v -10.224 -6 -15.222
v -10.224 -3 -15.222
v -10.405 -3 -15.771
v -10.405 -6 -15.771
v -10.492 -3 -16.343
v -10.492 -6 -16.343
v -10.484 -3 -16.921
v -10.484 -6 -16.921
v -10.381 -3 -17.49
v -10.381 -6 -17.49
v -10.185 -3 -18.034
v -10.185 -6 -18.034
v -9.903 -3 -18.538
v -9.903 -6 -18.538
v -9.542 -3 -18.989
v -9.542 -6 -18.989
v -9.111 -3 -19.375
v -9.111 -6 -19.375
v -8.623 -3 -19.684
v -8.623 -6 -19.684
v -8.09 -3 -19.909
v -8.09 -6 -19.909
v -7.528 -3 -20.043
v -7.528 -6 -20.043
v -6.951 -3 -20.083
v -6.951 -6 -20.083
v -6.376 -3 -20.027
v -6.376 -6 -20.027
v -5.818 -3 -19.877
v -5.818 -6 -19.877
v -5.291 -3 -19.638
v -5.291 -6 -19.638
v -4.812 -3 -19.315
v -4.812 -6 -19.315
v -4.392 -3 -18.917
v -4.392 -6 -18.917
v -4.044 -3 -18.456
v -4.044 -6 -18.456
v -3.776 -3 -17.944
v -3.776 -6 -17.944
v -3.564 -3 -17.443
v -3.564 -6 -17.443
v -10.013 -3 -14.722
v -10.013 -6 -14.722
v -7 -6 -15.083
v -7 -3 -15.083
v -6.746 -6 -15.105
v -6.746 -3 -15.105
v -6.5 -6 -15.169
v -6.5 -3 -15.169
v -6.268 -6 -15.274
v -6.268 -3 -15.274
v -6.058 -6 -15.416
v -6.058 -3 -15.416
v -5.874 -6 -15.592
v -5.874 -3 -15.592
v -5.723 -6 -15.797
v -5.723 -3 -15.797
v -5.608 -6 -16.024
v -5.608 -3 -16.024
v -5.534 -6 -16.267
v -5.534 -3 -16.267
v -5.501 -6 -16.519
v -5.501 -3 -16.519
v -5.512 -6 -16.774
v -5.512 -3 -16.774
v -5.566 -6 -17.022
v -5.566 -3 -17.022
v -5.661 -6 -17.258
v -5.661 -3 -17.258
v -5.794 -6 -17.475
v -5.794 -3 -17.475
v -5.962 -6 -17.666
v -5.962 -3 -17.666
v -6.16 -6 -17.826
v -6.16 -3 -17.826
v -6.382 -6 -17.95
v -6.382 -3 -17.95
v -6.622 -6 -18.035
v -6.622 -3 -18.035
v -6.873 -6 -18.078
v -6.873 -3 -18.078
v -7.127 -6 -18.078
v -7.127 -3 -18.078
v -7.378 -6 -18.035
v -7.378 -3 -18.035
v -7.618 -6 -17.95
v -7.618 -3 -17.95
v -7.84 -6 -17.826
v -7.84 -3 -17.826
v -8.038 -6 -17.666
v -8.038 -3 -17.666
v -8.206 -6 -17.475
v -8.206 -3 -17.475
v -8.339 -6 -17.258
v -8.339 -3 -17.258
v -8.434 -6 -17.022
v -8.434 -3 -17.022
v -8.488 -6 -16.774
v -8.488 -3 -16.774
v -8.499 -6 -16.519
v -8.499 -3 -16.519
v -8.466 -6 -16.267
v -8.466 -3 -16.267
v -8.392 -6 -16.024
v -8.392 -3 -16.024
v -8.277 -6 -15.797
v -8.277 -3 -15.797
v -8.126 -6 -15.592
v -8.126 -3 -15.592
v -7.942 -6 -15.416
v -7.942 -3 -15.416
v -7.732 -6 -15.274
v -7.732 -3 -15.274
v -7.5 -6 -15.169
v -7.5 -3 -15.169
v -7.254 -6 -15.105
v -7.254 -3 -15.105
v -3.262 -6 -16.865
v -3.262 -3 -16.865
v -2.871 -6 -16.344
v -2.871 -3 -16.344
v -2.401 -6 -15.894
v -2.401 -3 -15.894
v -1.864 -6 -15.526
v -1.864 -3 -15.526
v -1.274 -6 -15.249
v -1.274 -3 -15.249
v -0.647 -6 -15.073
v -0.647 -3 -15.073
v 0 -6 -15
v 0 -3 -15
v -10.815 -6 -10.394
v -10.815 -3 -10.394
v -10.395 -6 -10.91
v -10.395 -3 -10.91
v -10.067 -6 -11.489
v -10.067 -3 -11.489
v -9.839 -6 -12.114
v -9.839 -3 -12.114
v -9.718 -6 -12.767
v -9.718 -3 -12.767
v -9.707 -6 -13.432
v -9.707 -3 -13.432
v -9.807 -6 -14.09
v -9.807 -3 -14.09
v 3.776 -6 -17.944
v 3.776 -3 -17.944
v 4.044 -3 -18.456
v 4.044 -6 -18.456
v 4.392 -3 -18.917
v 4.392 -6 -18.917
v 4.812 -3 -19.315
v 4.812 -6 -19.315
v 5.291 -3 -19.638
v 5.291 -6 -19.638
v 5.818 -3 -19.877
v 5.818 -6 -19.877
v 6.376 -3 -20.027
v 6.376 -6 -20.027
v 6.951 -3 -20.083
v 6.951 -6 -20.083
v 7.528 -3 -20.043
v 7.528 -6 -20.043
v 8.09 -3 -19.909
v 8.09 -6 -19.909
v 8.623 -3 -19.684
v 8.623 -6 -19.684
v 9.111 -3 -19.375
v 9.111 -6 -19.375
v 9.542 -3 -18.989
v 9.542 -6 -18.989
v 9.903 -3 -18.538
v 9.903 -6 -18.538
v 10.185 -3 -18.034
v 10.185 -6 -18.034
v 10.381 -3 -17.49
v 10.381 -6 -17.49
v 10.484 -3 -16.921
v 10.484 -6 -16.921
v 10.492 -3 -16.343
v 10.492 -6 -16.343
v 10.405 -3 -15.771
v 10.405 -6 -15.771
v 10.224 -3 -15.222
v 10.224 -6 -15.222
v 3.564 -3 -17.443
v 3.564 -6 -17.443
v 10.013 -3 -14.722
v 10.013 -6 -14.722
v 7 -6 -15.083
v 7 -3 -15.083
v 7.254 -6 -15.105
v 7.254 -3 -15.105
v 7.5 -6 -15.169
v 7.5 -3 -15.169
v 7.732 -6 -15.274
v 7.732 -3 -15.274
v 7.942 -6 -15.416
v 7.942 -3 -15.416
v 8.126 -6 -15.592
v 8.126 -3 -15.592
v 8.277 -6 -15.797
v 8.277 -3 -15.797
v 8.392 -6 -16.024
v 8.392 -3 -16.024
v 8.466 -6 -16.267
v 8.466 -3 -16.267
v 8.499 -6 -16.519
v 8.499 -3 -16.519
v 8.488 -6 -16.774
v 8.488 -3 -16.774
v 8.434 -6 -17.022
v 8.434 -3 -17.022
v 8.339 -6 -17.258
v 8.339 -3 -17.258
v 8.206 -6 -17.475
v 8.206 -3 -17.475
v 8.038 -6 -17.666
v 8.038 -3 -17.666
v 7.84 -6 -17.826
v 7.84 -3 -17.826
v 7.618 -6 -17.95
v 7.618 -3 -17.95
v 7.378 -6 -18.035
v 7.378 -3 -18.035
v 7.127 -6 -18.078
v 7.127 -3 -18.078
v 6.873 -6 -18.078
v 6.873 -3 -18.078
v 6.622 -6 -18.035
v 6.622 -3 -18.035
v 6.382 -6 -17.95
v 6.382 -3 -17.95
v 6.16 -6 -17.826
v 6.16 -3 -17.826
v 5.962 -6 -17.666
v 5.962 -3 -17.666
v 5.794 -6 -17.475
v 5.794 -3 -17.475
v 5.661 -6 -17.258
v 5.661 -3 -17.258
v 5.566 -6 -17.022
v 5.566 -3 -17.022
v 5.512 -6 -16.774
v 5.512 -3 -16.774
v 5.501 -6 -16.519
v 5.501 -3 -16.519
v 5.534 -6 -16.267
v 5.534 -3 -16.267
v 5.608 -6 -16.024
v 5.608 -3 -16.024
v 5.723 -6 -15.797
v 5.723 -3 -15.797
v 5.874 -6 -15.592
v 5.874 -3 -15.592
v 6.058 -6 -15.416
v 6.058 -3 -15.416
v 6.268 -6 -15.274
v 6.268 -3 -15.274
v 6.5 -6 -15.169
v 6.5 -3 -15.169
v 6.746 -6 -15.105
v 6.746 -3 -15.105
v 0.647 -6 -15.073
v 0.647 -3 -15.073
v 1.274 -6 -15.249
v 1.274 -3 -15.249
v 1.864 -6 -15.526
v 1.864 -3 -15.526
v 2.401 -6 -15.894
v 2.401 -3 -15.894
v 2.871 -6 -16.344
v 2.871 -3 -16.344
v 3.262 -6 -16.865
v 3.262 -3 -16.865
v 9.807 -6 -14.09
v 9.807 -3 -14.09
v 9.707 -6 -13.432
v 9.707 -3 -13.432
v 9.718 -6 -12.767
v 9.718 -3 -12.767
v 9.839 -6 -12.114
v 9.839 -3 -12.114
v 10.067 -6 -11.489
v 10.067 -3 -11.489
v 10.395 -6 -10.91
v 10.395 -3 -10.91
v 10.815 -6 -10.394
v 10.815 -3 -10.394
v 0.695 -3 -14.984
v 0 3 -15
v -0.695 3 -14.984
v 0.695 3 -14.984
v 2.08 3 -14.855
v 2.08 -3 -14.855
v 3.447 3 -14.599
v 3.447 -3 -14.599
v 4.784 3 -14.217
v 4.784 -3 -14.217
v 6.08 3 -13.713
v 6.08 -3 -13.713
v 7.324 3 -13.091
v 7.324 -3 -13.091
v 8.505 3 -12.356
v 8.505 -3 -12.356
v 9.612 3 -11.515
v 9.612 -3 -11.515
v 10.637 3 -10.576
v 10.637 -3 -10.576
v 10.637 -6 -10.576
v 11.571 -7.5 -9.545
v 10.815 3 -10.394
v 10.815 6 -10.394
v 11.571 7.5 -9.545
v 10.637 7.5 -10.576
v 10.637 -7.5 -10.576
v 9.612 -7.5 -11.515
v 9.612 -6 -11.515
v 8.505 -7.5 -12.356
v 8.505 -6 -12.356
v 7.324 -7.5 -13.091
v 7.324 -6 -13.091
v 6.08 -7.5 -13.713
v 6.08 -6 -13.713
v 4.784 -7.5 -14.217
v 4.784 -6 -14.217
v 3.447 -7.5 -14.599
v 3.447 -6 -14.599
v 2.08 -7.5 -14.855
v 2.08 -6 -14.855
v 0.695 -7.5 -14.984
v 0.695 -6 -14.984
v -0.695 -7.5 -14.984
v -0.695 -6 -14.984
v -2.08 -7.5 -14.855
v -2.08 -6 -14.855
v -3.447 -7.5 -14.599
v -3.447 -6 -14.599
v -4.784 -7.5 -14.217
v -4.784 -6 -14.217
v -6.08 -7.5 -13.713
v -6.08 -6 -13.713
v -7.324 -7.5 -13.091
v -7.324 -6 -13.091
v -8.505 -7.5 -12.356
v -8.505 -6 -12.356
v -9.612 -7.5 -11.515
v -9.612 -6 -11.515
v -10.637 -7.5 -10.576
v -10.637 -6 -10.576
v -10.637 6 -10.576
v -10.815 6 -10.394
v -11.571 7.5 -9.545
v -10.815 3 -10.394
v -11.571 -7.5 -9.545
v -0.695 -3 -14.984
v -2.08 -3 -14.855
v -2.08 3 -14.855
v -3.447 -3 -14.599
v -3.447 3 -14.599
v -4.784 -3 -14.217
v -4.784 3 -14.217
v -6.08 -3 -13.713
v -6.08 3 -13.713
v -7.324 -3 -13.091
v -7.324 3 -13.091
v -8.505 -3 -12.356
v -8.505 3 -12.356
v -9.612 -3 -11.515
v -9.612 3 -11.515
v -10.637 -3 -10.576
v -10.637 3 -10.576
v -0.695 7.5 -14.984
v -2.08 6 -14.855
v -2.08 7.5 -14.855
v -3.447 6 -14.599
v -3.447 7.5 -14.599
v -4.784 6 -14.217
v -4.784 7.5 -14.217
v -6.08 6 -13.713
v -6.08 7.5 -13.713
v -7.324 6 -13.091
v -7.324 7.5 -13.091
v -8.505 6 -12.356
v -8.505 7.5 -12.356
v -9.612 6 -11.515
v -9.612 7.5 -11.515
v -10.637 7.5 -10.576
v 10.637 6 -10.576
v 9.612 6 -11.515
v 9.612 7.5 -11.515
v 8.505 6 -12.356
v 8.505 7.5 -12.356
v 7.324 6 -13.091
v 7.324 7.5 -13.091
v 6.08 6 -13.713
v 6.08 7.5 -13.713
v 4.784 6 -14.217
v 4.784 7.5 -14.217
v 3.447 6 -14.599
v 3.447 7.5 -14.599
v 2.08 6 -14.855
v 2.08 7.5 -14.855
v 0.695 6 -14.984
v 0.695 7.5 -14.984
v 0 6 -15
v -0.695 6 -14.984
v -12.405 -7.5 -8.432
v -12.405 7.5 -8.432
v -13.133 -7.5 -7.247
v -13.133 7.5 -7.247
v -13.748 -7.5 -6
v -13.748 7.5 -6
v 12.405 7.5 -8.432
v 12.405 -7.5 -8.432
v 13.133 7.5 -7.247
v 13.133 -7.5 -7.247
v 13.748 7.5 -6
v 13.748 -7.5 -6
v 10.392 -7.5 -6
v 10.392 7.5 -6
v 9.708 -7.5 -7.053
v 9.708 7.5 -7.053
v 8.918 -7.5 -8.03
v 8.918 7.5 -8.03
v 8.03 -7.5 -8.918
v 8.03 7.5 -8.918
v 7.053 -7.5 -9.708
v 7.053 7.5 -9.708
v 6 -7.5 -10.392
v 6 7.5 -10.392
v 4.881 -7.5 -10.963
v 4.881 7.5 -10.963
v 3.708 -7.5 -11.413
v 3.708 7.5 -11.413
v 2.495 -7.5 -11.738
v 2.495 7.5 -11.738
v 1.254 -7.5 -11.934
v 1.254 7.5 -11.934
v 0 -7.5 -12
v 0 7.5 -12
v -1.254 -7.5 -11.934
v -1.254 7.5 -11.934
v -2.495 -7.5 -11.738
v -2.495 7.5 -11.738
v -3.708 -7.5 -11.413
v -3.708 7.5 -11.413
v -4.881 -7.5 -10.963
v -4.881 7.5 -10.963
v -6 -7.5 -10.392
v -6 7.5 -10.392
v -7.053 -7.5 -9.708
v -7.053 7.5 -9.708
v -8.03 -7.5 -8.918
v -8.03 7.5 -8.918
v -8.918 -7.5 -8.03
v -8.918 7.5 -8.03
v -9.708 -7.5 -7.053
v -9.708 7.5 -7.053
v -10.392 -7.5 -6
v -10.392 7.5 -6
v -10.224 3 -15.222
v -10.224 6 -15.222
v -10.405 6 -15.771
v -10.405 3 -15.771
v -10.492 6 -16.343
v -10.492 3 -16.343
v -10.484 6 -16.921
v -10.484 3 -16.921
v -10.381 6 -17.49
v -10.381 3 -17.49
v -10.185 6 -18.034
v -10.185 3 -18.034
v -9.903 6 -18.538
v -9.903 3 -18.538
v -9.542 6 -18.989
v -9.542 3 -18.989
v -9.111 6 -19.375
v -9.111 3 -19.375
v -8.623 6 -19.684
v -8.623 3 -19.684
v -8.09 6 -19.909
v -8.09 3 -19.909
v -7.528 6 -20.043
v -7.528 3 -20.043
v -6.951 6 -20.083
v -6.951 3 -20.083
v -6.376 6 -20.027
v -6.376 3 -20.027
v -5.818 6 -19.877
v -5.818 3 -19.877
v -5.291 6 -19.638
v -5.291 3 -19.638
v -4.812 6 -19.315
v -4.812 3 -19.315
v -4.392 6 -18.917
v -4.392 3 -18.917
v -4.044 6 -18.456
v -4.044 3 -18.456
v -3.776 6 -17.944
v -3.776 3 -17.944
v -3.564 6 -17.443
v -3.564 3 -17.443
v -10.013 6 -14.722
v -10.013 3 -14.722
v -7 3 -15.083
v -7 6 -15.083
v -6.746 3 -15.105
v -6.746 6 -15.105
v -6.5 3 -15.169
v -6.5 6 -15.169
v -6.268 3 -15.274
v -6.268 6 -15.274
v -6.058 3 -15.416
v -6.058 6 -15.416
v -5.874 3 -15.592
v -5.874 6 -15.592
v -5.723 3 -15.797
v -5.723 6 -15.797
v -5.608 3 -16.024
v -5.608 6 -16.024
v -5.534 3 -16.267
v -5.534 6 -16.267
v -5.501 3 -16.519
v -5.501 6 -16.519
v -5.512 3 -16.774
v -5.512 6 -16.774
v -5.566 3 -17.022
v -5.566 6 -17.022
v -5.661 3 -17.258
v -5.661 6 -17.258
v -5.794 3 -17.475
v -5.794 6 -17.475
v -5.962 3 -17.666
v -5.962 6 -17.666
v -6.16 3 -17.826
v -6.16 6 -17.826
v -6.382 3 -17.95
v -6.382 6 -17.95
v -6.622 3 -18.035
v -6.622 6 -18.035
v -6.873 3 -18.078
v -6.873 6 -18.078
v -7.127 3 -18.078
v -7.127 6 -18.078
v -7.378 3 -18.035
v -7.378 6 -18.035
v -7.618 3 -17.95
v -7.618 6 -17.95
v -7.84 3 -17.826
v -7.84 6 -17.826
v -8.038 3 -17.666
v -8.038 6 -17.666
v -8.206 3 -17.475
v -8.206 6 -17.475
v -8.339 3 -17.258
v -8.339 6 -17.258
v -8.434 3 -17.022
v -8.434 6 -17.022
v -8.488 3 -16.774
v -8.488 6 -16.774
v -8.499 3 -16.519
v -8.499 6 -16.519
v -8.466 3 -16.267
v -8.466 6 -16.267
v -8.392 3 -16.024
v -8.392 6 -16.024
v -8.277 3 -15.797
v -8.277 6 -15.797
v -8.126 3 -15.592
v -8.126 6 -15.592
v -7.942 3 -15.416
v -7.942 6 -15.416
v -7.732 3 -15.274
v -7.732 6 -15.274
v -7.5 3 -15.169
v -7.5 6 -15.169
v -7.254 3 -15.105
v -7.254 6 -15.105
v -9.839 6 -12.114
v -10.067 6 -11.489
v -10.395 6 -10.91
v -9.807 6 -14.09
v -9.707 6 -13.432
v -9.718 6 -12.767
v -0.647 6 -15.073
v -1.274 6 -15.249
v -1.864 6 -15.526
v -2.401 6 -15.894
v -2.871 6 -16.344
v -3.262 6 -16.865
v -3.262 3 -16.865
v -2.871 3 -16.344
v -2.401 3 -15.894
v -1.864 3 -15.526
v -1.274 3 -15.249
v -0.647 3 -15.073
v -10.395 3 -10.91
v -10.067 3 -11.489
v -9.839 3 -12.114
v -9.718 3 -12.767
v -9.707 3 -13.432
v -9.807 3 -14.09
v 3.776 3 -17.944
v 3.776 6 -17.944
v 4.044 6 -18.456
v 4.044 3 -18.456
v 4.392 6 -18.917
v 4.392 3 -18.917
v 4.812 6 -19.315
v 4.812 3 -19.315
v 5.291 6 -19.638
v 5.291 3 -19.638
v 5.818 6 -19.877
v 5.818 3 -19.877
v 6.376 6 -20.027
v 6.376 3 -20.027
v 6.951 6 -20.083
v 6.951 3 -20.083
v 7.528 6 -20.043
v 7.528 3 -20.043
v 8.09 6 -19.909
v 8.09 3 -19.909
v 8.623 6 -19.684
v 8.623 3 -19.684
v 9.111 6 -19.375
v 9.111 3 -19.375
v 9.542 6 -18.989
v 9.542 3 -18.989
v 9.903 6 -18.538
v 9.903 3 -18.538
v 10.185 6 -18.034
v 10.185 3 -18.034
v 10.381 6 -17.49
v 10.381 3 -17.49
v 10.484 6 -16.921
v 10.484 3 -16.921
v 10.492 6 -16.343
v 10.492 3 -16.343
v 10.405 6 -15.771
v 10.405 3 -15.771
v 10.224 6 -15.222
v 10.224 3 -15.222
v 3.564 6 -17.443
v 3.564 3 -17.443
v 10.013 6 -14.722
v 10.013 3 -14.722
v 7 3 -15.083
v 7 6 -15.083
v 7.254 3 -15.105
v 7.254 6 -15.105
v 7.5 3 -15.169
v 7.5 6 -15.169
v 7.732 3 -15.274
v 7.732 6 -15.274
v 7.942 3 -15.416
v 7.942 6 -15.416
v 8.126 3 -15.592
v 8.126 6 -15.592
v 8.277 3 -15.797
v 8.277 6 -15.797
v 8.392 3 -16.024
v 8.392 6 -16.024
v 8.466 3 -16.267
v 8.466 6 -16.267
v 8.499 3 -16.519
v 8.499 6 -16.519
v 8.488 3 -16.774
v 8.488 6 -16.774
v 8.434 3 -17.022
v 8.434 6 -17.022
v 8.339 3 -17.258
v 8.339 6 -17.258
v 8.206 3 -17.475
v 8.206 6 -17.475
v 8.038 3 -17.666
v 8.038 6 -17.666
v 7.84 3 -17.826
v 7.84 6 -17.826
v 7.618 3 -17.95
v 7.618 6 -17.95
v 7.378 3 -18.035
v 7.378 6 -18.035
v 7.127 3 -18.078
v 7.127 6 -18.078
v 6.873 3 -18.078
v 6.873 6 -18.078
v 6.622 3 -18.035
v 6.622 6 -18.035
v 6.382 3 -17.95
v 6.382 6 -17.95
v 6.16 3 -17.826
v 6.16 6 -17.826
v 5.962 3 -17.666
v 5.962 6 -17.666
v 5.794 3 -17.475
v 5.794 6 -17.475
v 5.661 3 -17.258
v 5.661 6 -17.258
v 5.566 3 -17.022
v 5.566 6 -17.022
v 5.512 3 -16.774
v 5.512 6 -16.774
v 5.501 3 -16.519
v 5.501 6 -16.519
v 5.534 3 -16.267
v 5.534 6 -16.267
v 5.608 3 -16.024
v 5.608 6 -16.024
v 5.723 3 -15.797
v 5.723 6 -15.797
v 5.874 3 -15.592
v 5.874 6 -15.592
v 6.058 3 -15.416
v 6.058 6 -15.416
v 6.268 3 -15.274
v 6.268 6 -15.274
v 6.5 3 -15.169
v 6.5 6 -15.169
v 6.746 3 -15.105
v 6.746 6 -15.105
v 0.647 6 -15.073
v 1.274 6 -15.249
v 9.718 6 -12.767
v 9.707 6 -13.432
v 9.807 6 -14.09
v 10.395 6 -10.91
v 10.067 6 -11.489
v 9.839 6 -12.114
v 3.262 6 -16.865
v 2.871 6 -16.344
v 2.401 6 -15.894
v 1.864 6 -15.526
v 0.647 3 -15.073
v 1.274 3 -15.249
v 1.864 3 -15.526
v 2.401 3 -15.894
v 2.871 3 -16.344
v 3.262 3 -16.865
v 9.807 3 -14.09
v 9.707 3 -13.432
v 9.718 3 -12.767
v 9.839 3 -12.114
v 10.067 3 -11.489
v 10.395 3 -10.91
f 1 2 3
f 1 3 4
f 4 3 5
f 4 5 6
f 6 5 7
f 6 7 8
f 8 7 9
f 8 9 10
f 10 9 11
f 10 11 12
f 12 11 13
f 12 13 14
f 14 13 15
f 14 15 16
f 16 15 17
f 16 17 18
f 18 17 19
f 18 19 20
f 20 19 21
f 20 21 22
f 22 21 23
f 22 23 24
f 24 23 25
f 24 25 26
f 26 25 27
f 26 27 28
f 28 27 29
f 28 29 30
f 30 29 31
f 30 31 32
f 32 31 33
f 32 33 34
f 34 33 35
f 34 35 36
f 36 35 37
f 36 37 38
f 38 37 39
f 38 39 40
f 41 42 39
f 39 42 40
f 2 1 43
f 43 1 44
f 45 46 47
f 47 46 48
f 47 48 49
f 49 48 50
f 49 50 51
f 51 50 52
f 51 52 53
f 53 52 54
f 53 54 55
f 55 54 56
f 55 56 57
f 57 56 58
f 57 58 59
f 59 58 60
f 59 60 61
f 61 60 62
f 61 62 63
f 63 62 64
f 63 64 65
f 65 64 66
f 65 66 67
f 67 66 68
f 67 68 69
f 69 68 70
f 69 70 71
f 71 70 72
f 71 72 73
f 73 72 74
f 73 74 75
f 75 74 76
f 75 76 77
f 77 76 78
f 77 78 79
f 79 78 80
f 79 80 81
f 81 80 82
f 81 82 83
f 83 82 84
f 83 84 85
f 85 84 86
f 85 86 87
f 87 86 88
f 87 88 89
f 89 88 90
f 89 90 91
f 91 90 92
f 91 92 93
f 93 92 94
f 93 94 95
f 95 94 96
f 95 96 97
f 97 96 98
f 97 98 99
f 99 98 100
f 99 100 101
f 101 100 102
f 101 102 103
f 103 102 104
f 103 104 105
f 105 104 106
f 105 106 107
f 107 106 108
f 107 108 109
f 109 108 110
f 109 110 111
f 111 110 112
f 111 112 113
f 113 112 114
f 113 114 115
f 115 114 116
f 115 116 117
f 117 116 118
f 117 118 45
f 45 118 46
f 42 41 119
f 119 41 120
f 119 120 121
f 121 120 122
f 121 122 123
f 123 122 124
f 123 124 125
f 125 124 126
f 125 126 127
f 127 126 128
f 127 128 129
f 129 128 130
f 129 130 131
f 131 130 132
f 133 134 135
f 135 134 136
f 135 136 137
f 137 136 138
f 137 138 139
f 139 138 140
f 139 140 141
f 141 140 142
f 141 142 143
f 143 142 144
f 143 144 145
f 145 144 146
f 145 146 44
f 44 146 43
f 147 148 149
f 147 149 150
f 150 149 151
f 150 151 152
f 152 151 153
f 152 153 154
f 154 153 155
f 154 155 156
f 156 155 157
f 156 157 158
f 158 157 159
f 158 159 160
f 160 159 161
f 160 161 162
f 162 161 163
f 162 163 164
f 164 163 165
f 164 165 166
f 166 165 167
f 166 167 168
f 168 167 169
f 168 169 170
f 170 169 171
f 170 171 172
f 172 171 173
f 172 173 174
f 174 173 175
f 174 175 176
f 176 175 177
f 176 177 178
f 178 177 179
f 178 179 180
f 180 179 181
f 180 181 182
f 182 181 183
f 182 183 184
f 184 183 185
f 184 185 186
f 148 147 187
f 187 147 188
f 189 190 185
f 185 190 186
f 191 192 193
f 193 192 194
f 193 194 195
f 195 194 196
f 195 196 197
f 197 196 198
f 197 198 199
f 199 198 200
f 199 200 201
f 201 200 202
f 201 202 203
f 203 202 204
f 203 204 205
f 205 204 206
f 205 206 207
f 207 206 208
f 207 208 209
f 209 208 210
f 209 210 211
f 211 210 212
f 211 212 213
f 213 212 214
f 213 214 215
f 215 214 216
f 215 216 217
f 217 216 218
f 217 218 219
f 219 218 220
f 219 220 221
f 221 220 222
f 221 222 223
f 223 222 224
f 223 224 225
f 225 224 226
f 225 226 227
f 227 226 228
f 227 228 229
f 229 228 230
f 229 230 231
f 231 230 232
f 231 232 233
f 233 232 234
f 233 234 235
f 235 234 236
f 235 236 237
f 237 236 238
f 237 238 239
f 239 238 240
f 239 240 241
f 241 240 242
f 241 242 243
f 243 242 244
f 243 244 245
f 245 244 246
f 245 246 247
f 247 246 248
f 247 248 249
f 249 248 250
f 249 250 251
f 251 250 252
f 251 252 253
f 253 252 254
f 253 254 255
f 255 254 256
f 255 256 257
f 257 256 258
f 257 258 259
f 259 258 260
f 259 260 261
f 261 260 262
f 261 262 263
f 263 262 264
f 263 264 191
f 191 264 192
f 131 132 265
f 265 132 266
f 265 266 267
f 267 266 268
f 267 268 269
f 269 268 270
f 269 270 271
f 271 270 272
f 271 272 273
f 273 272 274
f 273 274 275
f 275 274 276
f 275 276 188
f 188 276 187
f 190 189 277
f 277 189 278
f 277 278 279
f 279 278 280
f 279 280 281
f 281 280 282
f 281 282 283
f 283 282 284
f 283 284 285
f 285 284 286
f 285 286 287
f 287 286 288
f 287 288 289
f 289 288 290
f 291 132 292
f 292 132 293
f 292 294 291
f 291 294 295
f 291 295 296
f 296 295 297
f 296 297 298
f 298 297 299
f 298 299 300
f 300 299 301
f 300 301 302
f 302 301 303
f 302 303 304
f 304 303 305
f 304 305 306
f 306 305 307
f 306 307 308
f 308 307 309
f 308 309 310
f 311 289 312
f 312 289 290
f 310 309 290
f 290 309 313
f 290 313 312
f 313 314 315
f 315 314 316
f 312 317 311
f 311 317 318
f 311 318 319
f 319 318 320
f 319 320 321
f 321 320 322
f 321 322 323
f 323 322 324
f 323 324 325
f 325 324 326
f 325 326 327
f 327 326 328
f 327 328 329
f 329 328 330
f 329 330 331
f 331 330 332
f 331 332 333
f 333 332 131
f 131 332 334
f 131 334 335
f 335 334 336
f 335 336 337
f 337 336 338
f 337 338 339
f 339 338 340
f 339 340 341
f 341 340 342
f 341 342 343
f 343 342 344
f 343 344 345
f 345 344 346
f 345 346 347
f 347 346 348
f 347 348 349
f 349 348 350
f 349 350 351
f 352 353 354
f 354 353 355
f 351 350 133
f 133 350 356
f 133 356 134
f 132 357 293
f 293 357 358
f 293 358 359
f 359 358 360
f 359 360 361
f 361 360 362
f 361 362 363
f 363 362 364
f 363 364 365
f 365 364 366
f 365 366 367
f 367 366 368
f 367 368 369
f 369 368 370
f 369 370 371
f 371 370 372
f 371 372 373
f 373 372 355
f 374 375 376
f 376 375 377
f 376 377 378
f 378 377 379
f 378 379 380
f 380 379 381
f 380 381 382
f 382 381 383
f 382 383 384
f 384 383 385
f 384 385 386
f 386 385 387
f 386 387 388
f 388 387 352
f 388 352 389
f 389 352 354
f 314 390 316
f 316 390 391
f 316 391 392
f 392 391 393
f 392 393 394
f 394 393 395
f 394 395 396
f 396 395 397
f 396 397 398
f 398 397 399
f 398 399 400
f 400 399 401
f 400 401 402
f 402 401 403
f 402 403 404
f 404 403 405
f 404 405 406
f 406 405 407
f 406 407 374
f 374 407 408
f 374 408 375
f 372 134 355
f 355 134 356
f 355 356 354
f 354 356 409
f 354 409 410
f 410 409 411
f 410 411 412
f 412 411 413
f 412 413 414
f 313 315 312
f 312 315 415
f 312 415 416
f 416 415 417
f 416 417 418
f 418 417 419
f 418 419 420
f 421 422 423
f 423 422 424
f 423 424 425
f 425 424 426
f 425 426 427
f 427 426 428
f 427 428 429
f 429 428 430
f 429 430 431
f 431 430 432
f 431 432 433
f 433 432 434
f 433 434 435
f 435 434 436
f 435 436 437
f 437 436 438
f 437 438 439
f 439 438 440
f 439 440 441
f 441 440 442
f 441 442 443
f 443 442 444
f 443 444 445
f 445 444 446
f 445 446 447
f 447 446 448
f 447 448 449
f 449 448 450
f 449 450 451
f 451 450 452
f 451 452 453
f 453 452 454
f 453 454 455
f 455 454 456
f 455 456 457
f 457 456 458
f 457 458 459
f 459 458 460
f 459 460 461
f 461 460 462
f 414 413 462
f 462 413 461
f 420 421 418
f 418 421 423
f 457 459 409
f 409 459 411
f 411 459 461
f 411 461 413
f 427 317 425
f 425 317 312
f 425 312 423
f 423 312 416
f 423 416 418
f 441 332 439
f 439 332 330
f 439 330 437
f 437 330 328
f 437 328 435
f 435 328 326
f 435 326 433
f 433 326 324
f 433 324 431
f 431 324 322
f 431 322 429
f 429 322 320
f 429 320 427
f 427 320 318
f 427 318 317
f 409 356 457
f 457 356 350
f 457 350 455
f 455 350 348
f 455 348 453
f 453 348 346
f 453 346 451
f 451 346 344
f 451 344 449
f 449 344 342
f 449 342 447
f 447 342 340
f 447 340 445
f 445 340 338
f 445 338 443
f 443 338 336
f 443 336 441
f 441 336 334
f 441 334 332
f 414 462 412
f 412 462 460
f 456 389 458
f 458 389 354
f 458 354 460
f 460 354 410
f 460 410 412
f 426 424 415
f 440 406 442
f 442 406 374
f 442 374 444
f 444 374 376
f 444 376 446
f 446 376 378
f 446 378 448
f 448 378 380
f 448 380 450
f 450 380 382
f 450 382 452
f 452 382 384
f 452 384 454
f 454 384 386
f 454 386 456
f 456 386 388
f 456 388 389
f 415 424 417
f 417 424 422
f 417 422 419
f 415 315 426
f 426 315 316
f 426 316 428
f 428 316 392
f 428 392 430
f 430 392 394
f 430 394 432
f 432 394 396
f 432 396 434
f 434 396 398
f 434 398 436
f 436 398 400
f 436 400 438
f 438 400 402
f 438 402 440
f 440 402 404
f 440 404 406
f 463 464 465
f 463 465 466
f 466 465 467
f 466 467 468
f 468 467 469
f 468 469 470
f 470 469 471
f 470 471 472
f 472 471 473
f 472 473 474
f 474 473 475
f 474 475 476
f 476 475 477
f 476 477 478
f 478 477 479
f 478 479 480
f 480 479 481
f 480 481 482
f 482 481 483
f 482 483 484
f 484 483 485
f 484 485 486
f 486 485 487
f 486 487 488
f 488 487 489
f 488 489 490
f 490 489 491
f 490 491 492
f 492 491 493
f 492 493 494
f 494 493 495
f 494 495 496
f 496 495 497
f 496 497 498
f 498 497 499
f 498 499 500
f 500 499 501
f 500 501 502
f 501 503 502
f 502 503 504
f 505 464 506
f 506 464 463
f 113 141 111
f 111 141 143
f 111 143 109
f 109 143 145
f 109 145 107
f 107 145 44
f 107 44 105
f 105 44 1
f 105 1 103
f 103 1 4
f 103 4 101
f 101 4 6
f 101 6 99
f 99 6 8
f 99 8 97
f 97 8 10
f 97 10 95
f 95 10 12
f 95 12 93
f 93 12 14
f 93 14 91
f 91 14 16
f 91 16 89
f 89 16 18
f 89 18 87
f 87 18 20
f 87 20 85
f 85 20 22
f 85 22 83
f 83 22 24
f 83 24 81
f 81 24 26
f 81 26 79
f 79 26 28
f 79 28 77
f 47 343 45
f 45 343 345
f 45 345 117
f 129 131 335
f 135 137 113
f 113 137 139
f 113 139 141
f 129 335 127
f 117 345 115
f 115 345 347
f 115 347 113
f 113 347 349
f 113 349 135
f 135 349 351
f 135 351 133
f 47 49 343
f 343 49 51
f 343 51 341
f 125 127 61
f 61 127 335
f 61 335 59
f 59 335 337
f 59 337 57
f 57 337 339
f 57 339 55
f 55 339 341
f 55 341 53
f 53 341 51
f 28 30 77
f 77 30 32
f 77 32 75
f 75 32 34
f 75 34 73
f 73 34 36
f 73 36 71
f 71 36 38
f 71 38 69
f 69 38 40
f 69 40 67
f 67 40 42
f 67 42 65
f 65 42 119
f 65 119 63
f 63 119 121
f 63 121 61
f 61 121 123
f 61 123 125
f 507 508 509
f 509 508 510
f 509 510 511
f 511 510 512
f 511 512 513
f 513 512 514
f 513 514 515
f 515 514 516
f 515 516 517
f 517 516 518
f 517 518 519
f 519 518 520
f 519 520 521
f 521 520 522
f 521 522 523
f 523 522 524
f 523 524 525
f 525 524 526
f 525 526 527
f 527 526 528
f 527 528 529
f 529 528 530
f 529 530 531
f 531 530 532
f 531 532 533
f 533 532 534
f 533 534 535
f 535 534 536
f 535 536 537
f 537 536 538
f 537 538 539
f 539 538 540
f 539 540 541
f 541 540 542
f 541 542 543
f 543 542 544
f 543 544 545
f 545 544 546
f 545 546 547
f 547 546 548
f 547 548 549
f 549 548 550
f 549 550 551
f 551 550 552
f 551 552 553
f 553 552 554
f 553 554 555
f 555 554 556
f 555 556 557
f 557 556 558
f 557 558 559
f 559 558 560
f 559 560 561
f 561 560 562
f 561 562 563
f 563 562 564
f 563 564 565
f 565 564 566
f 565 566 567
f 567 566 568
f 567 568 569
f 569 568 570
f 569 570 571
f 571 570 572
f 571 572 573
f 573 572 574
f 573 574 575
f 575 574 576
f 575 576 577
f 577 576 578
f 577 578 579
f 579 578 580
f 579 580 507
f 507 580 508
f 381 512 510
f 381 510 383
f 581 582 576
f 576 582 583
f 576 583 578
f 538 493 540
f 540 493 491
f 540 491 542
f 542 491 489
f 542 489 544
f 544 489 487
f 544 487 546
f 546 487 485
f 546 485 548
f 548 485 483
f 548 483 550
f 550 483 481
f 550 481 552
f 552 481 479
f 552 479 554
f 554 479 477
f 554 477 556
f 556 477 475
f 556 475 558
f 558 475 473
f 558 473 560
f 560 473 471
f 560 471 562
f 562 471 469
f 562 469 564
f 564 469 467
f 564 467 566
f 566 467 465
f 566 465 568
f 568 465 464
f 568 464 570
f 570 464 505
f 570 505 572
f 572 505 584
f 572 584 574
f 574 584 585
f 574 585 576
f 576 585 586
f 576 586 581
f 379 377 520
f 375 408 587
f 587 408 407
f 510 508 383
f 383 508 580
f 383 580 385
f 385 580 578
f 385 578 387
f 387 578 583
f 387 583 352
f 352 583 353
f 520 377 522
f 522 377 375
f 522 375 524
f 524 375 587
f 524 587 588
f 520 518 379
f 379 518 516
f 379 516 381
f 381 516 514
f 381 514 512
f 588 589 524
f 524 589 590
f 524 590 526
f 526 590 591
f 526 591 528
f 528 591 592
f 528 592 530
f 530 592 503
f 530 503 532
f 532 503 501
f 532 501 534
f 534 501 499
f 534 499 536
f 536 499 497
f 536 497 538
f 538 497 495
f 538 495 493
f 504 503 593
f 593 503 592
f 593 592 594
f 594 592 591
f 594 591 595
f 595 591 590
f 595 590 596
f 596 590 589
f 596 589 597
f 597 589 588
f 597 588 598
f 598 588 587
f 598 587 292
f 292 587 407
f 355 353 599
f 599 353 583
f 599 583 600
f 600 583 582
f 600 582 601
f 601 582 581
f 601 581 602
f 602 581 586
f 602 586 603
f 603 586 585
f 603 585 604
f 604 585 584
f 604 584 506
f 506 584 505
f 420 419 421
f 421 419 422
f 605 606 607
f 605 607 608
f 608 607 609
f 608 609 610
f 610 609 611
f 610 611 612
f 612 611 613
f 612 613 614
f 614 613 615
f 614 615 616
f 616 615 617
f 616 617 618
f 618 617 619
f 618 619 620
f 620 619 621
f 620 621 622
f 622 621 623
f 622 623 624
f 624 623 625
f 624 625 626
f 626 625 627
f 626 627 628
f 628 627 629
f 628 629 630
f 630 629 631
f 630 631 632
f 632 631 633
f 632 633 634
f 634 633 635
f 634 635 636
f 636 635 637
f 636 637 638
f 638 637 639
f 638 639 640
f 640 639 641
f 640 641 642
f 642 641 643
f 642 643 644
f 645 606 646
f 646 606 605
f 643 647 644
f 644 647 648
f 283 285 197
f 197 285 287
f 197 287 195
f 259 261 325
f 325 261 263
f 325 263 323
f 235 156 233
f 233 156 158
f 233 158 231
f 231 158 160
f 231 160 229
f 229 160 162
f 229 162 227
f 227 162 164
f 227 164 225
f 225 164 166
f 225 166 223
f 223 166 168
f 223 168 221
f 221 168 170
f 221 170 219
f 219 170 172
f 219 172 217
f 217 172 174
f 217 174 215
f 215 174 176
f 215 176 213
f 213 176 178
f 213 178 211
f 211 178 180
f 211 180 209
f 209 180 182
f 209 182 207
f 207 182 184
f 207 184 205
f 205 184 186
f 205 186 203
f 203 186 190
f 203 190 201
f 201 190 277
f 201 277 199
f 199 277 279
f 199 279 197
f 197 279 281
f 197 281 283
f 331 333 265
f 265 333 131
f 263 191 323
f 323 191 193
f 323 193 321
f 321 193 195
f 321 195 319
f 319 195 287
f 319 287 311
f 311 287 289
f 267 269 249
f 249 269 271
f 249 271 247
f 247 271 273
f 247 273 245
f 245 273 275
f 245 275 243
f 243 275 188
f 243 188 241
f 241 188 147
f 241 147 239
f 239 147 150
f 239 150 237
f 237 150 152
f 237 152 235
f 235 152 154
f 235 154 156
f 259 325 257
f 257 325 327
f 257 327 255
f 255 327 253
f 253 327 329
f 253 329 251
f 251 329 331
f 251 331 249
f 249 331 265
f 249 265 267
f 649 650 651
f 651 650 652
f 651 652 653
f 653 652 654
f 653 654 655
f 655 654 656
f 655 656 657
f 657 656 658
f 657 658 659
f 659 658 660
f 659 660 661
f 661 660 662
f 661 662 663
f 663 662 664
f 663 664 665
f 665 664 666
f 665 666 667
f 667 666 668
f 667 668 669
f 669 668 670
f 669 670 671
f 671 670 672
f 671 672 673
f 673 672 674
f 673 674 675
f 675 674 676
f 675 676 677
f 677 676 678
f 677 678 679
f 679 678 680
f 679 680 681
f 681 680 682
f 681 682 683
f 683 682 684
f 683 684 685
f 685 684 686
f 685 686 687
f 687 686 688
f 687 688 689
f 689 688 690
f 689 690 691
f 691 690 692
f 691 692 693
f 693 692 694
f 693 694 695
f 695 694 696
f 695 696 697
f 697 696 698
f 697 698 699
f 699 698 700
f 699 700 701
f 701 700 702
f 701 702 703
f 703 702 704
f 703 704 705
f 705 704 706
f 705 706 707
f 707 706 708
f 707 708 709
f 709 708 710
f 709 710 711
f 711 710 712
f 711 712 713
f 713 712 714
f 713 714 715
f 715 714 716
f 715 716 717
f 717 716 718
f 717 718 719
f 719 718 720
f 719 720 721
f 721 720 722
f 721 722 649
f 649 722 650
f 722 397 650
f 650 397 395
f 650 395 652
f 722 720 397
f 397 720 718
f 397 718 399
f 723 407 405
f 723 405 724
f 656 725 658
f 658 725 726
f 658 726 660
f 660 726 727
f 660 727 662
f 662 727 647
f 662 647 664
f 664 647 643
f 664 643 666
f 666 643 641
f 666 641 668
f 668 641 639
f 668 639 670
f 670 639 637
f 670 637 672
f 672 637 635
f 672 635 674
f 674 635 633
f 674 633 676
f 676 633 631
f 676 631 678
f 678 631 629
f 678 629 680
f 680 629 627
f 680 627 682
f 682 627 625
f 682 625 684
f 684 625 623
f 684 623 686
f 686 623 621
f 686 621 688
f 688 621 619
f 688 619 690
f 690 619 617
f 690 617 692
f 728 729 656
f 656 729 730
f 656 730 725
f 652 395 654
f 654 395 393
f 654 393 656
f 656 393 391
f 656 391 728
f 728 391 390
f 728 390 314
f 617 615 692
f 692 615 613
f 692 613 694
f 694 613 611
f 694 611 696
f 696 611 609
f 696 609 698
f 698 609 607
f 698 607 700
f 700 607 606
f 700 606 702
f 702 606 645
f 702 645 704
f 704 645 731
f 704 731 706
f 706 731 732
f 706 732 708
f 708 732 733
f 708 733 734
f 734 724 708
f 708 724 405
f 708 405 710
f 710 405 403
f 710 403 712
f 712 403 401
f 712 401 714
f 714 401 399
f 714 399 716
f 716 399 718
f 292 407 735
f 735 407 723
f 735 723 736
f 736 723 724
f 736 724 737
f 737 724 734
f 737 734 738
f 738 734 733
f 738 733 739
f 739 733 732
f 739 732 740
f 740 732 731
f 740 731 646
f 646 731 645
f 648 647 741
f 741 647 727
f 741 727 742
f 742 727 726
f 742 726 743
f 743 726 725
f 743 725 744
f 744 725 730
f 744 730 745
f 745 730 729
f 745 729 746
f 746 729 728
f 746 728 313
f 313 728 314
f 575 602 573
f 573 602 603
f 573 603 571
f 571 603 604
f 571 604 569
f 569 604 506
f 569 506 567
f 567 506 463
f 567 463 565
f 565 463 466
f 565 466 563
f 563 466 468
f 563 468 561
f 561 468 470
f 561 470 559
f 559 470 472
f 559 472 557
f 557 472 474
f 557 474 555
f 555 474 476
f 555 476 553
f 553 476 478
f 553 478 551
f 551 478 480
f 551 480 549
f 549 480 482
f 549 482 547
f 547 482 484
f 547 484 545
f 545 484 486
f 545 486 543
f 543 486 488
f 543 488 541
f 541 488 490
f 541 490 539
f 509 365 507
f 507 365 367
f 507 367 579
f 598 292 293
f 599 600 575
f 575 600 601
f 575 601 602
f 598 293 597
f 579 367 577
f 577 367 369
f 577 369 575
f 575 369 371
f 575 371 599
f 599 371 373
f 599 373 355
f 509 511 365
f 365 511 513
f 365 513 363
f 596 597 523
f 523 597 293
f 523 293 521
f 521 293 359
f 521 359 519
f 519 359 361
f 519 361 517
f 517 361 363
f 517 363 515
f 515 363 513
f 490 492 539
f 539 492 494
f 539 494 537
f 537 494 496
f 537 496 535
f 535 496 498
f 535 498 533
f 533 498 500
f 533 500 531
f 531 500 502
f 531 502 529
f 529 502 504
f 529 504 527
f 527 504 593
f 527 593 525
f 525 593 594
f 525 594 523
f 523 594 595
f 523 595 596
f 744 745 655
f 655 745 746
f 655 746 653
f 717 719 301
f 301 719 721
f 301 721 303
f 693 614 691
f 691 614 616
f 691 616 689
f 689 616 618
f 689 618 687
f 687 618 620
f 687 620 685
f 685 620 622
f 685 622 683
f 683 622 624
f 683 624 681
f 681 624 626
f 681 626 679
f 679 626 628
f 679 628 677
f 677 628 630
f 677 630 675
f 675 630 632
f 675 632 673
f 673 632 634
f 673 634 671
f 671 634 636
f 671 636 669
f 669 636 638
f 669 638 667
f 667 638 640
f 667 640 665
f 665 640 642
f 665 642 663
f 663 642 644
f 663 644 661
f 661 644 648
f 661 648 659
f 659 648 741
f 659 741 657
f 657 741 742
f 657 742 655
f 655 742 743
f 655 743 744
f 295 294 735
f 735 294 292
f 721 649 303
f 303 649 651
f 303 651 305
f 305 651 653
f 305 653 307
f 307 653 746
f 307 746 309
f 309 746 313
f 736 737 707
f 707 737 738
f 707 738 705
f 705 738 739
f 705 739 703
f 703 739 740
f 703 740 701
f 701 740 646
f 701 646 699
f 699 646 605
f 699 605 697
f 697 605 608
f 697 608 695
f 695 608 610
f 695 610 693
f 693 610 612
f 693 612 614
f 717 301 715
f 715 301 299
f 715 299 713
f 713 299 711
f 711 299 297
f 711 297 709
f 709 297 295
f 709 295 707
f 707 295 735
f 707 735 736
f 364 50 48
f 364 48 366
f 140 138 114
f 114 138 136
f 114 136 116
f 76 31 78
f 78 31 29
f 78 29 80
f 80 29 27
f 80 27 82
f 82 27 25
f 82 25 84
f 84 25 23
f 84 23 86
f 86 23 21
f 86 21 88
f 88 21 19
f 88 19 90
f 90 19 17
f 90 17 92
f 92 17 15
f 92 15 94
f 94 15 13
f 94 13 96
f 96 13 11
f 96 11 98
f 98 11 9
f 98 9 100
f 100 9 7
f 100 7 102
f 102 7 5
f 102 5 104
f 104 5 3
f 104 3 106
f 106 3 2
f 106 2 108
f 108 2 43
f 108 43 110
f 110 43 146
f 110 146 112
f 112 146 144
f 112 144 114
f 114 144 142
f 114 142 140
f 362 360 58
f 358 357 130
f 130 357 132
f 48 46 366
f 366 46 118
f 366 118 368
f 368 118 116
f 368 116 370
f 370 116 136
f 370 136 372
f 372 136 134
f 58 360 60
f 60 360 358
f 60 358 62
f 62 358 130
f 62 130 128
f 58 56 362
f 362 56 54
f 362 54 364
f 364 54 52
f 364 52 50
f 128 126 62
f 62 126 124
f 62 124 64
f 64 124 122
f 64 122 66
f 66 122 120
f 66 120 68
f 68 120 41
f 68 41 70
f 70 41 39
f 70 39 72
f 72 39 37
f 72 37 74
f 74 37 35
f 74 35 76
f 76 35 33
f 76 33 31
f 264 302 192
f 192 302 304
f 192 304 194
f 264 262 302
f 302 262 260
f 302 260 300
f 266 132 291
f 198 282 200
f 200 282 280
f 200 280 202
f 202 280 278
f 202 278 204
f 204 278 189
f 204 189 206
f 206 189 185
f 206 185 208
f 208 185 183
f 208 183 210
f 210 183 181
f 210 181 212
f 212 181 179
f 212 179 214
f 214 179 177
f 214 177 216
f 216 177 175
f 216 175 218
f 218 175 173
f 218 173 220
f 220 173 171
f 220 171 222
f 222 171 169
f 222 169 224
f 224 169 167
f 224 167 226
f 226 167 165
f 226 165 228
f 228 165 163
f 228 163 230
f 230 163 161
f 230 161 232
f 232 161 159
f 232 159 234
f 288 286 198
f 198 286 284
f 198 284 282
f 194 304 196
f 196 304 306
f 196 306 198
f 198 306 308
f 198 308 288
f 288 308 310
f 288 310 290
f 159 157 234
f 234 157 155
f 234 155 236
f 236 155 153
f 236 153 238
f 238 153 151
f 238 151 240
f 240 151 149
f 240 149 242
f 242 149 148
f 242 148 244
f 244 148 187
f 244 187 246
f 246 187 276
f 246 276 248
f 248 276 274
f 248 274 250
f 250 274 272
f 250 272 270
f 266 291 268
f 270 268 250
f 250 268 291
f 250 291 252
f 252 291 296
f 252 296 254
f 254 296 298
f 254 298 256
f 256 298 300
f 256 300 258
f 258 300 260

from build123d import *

# Parameters (mm, degrees)
BOSS_EXTRU_1_DEPTH           = 7.5
ESQUISSE2_R                  = 1.5
BOSS_EXTRU_2_DEPTH           = 6
CONG_2_R                     = 4
CONG_2_OF_SYM_TRIE1_R        = 4
ENL_V_MAT_EXTRU_1_DEPTH      = 3
ENL_V_MAT_EXTRU_1_DEPTH_BACK = 3
ESQUISSE3_R                  = 23.003278447
ESQUISSE3_R_2                = 15


with BuildPart() as part:
    # Esquisse1 → Boss.-Extru.1 (new, symmetric)
    with BuildSketch(Plane(origin=(0, 0, 0), x_dir=(1, 0, 0), z_dir=(0, 1, 0))):
        with BuildLine():
            Line((0, 15), (0, 12))
            ThreePointArc((0, 12), (-6, 10.392304845), (-10.392304845, 6))
            Line((-10.392304845, 6), (-13.747727085, 6))
            ThreePointArc((-13.747727085, 6), (-8.215838363, 12.549900398), (0, 15))
        make_face()
    boss_extru_1 = extrude(amount=BOSS_EXTRU_1_DEPTH, both=True)

    # Esquisse2 → Boss.-Extru.2 (add, symmetric)
    with BuildSketch(Plane(origin=(0, 0, 0), x_dir=(1, 0, 0), z_dir=(0, 1, 0))):
        with BuildLine():
            Line((-10.224496324, 15.222012841), (-8.896811047, 12.07670291))
            ThreePointArc((-8.896811047, 12.07670291), (-5.833333333, 13.81926996), (-2.447818399, 14.798925133))
            Line((-2.447818399, 14.798925133), (-3.775503676, 17.944235063))
            ThreePointArc((-3.775503676, 17.944235063), (-8.361111111, 19.807620276), (-10.224496324, 15.222012841))
        make_face()
        with Locations(Location((-7, 16.583123952, 0), (0, 0, 270))):
            Circle(ESQUISSE2_R, mode=Mode.SUBTRACT)
    boss_extru_2 = extrude(amount=BOSS_EXTRU_2_DEPTH, both=True)

    # Congé2
    # the kernel refuses this fillet: 4 mm, written as the material it adds along each edge
    with BuildSketch(Plane(origin=(-2.447818399, -6, -14.798925133), x_dir=(0.9966431178830178, 0, -0.0818687704586858), z_dir=(0, 1, 0))) as cong_2_piece_1:
        with BuildLine():
            CenterArc((2.904362046, 3.974799123), CONG_2_R, 198.189389649, 65.375681648)
            Line((-0.895757454, 2.726163155), (-0.971759844, 2.701190435))
            Line((-0.971759844, 2.701190435), (-0.07600239, -0.024972719))
            Line((-0.07600239, -0.024972719), (0.006549502, -0.079731449))
            ThreePointArc((0.006549502, -0.079731449), (1.228031557, -0.029646768), (2.447097135, -0.079495982))
            Line((2.447097135, -0.079495982), (2.456063114, 0))
        make_face()
    extrude(amount=12)
    with BuildSketch(Plane(origin=(-8.896811047, -6, -12.07670291), x_dir=(-0.7517608452817168, 0, 0.6594358433549989), z_dir=(0, 1, 0))) as cong_2_piece_2:
        with BuildLine():
            CenterArc((2.891216238, -3.985511596), CONG_2_R, 94.878081885, 66.750437409)
            Line((-0.904915803, -2.724804838), (-0.980838444, -2.699590703))
            Line((-0.980838444, -2.699590703), (-0.075922641, 0.025214135))
            Line((-0.075922641, 0.025214135), (0.006802862, 0.079710232))
            ThreePointArc((0.006802862, 0.079710232), (1.275536575, 0.025668484), (2.544270289, 0.079710232))
            Line((2.544270289, 0.079710232), (2.551073151, 0))
        make_face()
    extrude(amount=12)

    # Symétrie1: Boss.-Extru.1, Boss.-Extru.2 across plane
    add(boss_extru_1.mirror(Plane(origin=(0, -7.5, -15), x_dir=(0, 0, 1), z_dir=(1, 0, 0))))
    add(boss_extru_2.mirror(Plane(origin=(0, -7.5, -15), x_dir=(0, 0, 1), z_dir=(1, 0, 0))))

    # Congé2 of Symétrie1
    # the kernel refuses this fillet: 4 mm, written as the material it adds along each edge
    with BuildSketch(Plane(origin=(2.447818399, -6, -14.798925133), x_dir=(-0.9966431178830035, 0, -0.08186877045886062), z_dir=(0, 1, 0))) as cong_2_of_sym_trie1_piece_1:
        with BuildLine():
            CenterArc((2.904362046, -3.974799123), CONG_2_OF_SYM_TRIE1_R, 96.434928703, 65.375681648)
            Line((-0.895757454, -2.726163155), (-0.971759844, -2.701190435))
            Line((-0.971759844, -2.701190435), (-0.07600239, 0.024972719))
            Line((-0.07600239, 0.024972719), (0.006549502, 0.079731449))
            ThreePointArc((0.006549502, 0.079731449), (1.228031557, 0.029646768), (2.447097135, 0.079495982))
            Line((2.447097135, 0.079495982), (2.456063114, 0))
        make_face()
    extrude(amount=12)
    with BuildSketch(Plane(origin=(8.896811047, -6, -12.07670291), x_dir=(0.7517608452817176, 0, 0.6594358433549979), z_dir=(0, 1, 0))) as cong_2_of_sym_trie1_piece_2:
        with BuildLine():
            CenterArc((2.891216238, 3.985511596), CONG_2_OF_SYM_TRIE1_R, 198.371480706, 66.750437409)
            Line((-0.904915803, 2.724804838), (-0.980838444, 2.699590703))
            Line((-0.980838444, 2.699590703), (-0.075922641, -0.025214135))
            Line((-0.075922641, -0.025214135), (0.006802862, -0.079710232))
            ThreePointArc((0.006802862, -0.079710232), (1.275536575, -0.025668484), (2.544270289, -0.079710232))
            Line((2.544270289, -0.079710232), (2.551073151, 0))
        make_face()
    extrude(amount=12)

    # Esquisse3 → Enlèv. mat.-Extru.1 (cut, two sides: drawn at the far end of the back side and taken through both)
    with BuildSketch(Plane(origin=(0, 0, 0), x_dir=(1, 0, 0), z_dir=(0, 1, 0)).offset(-ENL_V_MAT_EXTRU_1_DEPTH_BACK)):
        Circle(ESQUISSE3_R)
        Circle(ESQUISSE3_R_2, mode=Mode.SUBTRACT)
    extrude(amount=ENL_V_MAT_EXTRU_1_DEPTH + ENL_V_MAT_EXTRU_1_DEPTH_BACK, mode=Mode.SUBTRACT)


solid = part.part
